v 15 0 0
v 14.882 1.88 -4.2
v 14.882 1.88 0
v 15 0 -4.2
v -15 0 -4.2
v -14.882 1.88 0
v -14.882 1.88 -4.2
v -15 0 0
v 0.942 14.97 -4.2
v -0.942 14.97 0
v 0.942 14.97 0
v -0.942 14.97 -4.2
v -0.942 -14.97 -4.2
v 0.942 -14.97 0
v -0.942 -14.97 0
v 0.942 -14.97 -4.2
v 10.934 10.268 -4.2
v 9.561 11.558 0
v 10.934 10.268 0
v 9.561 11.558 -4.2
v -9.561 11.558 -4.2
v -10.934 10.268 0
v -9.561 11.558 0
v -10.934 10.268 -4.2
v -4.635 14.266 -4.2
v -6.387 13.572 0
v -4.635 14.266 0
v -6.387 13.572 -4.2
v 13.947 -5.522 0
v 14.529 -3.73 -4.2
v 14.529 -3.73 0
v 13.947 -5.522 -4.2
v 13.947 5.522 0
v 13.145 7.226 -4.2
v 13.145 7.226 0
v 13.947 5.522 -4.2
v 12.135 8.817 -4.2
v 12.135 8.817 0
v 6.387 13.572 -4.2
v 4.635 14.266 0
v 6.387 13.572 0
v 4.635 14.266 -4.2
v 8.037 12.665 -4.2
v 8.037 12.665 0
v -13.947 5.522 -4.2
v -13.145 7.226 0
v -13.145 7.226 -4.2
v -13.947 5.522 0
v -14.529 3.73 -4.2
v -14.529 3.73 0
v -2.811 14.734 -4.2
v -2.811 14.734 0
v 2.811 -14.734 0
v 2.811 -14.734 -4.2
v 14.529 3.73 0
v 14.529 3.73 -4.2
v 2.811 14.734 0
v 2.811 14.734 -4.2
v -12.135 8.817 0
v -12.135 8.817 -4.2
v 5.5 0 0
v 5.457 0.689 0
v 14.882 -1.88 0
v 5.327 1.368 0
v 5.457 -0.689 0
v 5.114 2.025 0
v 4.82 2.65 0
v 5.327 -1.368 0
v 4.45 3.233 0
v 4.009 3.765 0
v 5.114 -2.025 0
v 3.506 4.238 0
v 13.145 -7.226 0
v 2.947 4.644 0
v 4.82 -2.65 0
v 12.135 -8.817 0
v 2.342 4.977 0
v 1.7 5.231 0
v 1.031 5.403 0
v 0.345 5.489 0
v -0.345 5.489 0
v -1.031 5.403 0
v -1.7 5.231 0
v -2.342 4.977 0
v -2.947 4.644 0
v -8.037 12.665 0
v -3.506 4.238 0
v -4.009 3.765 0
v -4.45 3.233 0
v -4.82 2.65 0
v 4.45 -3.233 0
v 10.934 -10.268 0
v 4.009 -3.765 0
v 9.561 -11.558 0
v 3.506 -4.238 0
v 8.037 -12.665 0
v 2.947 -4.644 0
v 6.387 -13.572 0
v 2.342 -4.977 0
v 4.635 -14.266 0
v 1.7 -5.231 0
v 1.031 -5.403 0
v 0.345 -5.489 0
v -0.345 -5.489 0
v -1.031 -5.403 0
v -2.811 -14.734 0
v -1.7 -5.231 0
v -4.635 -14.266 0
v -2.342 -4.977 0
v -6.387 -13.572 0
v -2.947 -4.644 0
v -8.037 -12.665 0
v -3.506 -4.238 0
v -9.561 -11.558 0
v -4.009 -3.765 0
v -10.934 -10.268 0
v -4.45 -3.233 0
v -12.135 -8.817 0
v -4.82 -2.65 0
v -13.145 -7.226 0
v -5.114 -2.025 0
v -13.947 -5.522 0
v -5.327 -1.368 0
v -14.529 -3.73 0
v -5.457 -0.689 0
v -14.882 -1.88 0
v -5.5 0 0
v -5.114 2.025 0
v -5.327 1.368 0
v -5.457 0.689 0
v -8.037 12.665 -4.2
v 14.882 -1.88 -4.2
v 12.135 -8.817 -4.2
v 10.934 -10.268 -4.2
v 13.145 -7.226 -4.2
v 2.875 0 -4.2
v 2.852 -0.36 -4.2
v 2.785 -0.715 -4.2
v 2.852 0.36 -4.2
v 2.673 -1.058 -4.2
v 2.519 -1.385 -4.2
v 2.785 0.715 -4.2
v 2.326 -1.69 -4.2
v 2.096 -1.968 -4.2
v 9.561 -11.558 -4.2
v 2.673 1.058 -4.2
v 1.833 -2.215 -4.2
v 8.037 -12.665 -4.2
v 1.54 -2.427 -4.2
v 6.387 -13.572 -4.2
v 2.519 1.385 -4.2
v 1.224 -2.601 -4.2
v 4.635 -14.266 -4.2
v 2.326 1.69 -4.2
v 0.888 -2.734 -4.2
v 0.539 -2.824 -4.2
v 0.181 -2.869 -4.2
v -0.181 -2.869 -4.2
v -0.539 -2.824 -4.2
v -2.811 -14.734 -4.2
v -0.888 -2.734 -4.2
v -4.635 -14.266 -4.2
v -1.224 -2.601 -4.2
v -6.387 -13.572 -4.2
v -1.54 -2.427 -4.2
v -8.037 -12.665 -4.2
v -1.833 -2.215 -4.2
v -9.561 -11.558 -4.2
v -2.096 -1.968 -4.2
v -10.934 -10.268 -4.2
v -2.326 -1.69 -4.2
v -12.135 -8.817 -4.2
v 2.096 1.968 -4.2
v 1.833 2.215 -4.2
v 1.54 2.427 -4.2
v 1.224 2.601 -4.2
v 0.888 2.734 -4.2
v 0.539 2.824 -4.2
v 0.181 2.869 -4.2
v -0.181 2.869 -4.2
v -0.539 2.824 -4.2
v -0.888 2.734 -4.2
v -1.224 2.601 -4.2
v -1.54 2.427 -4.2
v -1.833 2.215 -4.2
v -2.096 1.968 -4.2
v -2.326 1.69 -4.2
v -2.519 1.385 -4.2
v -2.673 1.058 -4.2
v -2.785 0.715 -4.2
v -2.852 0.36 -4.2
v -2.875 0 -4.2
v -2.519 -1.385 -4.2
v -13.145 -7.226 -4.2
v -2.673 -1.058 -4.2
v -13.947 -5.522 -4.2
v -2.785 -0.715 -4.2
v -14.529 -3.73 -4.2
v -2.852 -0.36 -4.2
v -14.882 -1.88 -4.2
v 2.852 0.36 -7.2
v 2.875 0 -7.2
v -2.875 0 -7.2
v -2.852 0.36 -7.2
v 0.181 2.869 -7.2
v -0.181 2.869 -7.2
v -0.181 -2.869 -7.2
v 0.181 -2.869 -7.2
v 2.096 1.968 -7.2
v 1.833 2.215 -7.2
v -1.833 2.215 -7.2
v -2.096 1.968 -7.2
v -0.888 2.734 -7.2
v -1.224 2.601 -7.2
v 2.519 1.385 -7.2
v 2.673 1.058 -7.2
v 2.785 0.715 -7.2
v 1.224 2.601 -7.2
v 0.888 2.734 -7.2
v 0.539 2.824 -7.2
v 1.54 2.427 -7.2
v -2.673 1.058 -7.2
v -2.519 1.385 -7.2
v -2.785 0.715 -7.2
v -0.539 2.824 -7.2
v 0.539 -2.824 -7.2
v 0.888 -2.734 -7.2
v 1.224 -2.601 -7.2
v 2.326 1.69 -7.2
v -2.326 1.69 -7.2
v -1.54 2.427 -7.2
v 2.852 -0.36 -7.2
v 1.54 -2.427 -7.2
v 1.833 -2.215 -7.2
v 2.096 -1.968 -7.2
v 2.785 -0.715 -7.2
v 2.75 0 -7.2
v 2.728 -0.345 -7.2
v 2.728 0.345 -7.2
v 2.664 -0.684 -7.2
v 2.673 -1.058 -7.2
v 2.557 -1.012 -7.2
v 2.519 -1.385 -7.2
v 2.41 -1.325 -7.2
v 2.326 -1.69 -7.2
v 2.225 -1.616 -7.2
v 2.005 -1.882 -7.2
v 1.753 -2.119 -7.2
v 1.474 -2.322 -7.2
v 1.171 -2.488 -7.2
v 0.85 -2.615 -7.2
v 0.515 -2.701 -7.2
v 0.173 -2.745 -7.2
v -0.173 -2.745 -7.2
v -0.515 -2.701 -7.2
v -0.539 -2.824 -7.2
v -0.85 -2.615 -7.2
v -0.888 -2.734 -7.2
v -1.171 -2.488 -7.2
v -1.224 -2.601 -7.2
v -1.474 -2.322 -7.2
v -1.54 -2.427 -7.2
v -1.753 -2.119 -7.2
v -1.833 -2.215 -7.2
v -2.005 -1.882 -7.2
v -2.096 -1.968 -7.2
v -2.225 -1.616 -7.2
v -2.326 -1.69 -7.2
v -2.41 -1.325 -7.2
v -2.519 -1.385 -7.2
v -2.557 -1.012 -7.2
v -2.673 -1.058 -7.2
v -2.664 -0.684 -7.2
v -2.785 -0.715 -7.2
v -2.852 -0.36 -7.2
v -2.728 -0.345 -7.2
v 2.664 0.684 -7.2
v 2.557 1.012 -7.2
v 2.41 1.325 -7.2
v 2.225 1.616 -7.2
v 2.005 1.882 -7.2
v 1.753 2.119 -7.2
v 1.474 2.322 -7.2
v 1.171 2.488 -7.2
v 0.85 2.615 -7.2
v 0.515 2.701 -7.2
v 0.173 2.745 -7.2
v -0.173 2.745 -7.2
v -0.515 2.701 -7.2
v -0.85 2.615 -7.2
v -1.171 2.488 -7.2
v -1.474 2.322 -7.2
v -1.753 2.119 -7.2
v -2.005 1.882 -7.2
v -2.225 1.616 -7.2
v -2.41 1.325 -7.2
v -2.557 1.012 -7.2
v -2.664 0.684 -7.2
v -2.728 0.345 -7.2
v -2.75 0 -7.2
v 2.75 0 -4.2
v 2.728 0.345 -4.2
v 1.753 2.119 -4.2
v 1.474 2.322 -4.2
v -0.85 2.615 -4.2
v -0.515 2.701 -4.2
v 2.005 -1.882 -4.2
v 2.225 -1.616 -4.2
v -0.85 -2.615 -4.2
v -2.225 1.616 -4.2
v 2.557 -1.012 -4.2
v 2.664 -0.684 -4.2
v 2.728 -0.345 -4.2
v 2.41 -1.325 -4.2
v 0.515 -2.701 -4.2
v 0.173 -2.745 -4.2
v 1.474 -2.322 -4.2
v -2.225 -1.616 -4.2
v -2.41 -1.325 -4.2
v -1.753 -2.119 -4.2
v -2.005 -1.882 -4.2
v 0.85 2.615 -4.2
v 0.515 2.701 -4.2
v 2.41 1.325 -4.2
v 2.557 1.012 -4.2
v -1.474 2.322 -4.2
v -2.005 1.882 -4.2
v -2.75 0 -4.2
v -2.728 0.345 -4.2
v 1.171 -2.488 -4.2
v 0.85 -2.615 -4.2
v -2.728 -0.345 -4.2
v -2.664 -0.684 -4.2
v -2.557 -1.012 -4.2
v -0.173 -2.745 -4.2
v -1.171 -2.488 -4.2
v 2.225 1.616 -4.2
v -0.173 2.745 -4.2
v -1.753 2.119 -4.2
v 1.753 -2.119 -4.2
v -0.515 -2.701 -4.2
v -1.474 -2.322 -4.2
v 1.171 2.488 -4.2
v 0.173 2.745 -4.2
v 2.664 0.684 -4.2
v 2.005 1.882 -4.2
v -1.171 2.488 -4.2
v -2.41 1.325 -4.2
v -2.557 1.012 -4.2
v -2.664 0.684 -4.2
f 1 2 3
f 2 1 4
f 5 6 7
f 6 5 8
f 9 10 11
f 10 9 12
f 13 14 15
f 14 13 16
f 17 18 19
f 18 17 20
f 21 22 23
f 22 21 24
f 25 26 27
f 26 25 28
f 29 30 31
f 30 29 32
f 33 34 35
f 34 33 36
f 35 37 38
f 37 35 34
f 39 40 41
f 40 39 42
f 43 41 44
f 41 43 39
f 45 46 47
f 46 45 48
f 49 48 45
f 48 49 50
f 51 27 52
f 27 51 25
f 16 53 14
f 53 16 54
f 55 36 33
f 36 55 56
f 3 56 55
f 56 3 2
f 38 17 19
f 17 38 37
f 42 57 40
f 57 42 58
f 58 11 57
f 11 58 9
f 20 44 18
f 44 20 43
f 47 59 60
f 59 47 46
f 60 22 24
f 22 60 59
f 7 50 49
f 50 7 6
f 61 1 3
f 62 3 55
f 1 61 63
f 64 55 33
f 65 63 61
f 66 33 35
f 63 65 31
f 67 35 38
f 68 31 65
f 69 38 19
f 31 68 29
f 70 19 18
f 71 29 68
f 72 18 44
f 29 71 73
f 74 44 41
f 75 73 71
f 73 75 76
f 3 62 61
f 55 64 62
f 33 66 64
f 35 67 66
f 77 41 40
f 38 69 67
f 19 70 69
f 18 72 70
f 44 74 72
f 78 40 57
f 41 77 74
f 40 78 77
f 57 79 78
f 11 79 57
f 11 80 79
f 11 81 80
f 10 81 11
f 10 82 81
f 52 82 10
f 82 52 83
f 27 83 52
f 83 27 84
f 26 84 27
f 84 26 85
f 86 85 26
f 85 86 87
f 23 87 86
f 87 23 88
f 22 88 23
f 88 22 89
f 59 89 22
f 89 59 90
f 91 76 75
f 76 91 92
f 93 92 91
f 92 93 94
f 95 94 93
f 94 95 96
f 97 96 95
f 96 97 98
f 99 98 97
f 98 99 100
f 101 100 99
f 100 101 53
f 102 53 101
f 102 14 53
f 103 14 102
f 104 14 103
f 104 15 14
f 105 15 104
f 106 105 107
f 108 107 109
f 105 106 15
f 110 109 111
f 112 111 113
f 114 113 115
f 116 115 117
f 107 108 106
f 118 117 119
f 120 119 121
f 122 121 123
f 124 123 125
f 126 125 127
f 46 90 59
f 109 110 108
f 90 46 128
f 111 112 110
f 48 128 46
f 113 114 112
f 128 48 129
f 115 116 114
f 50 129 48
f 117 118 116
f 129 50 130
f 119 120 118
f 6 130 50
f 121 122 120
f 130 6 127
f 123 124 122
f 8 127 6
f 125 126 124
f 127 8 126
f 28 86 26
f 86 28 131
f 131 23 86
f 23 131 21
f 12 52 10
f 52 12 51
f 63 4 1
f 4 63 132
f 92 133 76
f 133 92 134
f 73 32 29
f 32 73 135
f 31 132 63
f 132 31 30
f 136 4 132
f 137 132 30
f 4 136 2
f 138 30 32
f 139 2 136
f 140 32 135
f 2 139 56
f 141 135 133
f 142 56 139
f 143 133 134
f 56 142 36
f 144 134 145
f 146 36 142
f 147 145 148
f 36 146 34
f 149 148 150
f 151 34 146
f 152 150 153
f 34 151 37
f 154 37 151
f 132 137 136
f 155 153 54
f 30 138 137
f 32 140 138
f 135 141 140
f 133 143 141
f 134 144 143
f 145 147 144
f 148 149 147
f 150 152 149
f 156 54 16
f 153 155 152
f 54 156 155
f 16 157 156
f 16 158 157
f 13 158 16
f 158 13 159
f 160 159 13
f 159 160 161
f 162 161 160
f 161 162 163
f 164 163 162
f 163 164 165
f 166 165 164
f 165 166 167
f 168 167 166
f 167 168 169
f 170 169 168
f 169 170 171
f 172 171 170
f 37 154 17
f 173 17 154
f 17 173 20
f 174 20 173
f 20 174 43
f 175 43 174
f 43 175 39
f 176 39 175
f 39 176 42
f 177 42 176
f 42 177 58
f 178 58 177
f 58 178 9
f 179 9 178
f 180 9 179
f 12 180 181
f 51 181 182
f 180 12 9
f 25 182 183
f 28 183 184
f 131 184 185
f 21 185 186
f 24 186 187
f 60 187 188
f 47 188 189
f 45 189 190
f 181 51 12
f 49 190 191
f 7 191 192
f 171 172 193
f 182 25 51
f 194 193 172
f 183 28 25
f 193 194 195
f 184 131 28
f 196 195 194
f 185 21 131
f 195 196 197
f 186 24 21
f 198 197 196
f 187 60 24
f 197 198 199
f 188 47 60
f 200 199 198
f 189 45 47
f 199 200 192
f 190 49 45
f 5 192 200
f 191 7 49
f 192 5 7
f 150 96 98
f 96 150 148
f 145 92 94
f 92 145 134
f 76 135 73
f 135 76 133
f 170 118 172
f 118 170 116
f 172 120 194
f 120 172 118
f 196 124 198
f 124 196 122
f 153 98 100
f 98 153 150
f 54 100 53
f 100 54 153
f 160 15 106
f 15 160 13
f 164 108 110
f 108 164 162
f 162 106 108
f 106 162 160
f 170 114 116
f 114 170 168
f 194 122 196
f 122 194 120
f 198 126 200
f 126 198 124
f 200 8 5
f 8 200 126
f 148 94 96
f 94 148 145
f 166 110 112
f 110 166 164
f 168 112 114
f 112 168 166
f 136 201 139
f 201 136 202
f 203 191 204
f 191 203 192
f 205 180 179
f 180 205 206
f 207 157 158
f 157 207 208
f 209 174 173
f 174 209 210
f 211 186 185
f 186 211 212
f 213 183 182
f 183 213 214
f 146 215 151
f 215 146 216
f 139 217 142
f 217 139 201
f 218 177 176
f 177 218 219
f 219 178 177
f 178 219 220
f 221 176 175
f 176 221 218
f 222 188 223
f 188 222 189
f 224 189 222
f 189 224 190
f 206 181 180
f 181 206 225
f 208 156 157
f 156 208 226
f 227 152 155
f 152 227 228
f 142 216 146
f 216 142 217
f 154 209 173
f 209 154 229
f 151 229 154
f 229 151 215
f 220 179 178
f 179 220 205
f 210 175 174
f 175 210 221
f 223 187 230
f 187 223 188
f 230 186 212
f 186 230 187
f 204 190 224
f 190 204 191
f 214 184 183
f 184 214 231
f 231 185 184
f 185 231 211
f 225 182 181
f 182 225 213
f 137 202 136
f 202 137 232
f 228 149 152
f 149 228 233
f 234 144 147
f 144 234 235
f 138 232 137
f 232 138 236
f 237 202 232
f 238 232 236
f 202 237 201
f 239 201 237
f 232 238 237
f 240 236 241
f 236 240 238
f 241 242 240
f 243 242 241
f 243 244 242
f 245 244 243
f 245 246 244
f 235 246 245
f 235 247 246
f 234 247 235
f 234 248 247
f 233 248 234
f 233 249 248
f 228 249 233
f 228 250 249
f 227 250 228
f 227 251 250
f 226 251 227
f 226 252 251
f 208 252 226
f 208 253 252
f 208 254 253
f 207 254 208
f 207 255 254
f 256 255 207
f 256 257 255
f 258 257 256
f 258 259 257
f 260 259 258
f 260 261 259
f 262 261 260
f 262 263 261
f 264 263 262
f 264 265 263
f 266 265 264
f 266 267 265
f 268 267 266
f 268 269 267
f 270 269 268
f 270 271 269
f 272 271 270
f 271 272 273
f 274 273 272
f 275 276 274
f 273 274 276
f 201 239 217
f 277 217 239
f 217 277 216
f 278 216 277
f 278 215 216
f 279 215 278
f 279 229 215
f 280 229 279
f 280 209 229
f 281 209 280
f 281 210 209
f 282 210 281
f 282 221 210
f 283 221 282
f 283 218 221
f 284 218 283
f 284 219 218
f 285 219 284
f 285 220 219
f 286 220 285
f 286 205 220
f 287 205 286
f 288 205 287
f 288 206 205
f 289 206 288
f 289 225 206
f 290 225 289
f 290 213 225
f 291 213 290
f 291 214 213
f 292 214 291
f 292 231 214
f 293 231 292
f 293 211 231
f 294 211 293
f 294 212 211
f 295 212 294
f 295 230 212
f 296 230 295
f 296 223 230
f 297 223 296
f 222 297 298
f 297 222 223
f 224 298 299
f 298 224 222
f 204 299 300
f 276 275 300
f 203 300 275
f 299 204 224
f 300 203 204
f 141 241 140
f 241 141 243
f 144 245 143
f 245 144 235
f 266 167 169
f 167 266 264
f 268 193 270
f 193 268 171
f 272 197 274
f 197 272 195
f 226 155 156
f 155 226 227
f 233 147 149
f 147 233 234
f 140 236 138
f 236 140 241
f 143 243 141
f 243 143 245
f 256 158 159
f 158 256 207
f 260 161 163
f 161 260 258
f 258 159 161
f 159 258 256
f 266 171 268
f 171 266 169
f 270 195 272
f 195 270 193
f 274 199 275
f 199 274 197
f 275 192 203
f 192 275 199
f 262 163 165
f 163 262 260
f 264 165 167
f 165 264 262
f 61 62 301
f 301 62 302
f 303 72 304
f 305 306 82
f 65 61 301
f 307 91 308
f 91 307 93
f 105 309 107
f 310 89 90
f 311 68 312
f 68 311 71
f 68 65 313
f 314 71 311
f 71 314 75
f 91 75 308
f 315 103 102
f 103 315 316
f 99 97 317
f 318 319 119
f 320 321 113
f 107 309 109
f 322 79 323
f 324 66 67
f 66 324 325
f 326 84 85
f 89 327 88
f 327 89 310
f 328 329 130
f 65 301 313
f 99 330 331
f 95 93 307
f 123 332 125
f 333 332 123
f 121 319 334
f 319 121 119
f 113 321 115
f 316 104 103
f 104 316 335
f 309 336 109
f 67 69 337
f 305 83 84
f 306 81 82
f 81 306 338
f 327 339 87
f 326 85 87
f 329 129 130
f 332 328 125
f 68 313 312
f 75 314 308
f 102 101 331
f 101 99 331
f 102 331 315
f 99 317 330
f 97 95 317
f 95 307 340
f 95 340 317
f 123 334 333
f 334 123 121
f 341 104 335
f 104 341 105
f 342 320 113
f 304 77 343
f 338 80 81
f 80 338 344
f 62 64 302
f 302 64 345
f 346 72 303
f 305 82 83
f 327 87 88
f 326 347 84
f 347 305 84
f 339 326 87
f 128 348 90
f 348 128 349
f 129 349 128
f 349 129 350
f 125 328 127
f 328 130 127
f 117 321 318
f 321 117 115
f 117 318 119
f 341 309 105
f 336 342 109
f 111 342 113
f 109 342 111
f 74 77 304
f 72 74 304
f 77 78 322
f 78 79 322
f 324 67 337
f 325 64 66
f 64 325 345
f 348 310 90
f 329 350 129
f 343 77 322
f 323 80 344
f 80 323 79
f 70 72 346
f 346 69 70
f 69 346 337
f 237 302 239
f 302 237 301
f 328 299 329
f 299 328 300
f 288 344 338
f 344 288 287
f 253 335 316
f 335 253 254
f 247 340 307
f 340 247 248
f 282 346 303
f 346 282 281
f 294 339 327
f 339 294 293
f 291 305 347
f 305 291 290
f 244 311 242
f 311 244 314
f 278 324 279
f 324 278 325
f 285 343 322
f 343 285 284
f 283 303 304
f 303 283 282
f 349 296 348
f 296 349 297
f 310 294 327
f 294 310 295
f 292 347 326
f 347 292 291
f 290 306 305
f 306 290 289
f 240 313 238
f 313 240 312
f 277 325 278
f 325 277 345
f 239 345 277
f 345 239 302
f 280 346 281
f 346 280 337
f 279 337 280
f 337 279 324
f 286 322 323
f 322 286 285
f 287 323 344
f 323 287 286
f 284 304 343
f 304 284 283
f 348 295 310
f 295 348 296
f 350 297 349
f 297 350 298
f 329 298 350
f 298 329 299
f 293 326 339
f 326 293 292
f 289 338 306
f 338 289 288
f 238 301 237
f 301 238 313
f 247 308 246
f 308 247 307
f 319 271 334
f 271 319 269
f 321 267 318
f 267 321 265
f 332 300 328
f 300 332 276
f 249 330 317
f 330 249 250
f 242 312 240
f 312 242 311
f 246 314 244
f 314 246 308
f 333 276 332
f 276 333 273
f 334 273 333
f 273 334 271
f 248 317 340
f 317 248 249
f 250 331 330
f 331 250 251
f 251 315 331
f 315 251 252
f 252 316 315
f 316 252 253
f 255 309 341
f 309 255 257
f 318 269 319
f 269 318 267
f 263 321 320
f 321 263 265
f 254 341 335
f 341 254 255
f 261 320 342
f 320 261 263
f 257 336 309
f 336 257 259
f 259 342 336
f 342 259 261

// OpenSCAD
$fn = 50;


difference() {
	union() {
		translate(v = [0, 0, -4.2000000000]) {
			cylinder(h = 4.2000000000, r = 15.0000000000);
		}
		translate(v = [0, 0, -7.2000000000]) {
			cylinder(h = 7.2000000000, r = 2.8750000000);
		}
	}
	union() {
		translate(v = [0, 0, 0]) {
			rotate(a = [0, 0, 0]) {
				difference() {
					union() {
						translate(v = [0, 0, -7.2000000000]) {
							cylinder(h = 7.2000000000, r = 2.2500000000);
						}
						translate(v = [0, 0, -4.2000000000]) {
							cylinder(h = 4.2000000000, r1 = 2.7500000000, r2 = 5.5000000000);
						}
						translate(v = [0, 0, -7.2000000000]) {
							cylinder(h = 7.2000000000, r = 2.7500000000);
						}
						translate(v = [0, 0, -7.2000000000]) {
							cylinder(h = 7.2000000000, r = 2.2500000000);
						}
					}
					union();
				}
			}
		}
	}
}
